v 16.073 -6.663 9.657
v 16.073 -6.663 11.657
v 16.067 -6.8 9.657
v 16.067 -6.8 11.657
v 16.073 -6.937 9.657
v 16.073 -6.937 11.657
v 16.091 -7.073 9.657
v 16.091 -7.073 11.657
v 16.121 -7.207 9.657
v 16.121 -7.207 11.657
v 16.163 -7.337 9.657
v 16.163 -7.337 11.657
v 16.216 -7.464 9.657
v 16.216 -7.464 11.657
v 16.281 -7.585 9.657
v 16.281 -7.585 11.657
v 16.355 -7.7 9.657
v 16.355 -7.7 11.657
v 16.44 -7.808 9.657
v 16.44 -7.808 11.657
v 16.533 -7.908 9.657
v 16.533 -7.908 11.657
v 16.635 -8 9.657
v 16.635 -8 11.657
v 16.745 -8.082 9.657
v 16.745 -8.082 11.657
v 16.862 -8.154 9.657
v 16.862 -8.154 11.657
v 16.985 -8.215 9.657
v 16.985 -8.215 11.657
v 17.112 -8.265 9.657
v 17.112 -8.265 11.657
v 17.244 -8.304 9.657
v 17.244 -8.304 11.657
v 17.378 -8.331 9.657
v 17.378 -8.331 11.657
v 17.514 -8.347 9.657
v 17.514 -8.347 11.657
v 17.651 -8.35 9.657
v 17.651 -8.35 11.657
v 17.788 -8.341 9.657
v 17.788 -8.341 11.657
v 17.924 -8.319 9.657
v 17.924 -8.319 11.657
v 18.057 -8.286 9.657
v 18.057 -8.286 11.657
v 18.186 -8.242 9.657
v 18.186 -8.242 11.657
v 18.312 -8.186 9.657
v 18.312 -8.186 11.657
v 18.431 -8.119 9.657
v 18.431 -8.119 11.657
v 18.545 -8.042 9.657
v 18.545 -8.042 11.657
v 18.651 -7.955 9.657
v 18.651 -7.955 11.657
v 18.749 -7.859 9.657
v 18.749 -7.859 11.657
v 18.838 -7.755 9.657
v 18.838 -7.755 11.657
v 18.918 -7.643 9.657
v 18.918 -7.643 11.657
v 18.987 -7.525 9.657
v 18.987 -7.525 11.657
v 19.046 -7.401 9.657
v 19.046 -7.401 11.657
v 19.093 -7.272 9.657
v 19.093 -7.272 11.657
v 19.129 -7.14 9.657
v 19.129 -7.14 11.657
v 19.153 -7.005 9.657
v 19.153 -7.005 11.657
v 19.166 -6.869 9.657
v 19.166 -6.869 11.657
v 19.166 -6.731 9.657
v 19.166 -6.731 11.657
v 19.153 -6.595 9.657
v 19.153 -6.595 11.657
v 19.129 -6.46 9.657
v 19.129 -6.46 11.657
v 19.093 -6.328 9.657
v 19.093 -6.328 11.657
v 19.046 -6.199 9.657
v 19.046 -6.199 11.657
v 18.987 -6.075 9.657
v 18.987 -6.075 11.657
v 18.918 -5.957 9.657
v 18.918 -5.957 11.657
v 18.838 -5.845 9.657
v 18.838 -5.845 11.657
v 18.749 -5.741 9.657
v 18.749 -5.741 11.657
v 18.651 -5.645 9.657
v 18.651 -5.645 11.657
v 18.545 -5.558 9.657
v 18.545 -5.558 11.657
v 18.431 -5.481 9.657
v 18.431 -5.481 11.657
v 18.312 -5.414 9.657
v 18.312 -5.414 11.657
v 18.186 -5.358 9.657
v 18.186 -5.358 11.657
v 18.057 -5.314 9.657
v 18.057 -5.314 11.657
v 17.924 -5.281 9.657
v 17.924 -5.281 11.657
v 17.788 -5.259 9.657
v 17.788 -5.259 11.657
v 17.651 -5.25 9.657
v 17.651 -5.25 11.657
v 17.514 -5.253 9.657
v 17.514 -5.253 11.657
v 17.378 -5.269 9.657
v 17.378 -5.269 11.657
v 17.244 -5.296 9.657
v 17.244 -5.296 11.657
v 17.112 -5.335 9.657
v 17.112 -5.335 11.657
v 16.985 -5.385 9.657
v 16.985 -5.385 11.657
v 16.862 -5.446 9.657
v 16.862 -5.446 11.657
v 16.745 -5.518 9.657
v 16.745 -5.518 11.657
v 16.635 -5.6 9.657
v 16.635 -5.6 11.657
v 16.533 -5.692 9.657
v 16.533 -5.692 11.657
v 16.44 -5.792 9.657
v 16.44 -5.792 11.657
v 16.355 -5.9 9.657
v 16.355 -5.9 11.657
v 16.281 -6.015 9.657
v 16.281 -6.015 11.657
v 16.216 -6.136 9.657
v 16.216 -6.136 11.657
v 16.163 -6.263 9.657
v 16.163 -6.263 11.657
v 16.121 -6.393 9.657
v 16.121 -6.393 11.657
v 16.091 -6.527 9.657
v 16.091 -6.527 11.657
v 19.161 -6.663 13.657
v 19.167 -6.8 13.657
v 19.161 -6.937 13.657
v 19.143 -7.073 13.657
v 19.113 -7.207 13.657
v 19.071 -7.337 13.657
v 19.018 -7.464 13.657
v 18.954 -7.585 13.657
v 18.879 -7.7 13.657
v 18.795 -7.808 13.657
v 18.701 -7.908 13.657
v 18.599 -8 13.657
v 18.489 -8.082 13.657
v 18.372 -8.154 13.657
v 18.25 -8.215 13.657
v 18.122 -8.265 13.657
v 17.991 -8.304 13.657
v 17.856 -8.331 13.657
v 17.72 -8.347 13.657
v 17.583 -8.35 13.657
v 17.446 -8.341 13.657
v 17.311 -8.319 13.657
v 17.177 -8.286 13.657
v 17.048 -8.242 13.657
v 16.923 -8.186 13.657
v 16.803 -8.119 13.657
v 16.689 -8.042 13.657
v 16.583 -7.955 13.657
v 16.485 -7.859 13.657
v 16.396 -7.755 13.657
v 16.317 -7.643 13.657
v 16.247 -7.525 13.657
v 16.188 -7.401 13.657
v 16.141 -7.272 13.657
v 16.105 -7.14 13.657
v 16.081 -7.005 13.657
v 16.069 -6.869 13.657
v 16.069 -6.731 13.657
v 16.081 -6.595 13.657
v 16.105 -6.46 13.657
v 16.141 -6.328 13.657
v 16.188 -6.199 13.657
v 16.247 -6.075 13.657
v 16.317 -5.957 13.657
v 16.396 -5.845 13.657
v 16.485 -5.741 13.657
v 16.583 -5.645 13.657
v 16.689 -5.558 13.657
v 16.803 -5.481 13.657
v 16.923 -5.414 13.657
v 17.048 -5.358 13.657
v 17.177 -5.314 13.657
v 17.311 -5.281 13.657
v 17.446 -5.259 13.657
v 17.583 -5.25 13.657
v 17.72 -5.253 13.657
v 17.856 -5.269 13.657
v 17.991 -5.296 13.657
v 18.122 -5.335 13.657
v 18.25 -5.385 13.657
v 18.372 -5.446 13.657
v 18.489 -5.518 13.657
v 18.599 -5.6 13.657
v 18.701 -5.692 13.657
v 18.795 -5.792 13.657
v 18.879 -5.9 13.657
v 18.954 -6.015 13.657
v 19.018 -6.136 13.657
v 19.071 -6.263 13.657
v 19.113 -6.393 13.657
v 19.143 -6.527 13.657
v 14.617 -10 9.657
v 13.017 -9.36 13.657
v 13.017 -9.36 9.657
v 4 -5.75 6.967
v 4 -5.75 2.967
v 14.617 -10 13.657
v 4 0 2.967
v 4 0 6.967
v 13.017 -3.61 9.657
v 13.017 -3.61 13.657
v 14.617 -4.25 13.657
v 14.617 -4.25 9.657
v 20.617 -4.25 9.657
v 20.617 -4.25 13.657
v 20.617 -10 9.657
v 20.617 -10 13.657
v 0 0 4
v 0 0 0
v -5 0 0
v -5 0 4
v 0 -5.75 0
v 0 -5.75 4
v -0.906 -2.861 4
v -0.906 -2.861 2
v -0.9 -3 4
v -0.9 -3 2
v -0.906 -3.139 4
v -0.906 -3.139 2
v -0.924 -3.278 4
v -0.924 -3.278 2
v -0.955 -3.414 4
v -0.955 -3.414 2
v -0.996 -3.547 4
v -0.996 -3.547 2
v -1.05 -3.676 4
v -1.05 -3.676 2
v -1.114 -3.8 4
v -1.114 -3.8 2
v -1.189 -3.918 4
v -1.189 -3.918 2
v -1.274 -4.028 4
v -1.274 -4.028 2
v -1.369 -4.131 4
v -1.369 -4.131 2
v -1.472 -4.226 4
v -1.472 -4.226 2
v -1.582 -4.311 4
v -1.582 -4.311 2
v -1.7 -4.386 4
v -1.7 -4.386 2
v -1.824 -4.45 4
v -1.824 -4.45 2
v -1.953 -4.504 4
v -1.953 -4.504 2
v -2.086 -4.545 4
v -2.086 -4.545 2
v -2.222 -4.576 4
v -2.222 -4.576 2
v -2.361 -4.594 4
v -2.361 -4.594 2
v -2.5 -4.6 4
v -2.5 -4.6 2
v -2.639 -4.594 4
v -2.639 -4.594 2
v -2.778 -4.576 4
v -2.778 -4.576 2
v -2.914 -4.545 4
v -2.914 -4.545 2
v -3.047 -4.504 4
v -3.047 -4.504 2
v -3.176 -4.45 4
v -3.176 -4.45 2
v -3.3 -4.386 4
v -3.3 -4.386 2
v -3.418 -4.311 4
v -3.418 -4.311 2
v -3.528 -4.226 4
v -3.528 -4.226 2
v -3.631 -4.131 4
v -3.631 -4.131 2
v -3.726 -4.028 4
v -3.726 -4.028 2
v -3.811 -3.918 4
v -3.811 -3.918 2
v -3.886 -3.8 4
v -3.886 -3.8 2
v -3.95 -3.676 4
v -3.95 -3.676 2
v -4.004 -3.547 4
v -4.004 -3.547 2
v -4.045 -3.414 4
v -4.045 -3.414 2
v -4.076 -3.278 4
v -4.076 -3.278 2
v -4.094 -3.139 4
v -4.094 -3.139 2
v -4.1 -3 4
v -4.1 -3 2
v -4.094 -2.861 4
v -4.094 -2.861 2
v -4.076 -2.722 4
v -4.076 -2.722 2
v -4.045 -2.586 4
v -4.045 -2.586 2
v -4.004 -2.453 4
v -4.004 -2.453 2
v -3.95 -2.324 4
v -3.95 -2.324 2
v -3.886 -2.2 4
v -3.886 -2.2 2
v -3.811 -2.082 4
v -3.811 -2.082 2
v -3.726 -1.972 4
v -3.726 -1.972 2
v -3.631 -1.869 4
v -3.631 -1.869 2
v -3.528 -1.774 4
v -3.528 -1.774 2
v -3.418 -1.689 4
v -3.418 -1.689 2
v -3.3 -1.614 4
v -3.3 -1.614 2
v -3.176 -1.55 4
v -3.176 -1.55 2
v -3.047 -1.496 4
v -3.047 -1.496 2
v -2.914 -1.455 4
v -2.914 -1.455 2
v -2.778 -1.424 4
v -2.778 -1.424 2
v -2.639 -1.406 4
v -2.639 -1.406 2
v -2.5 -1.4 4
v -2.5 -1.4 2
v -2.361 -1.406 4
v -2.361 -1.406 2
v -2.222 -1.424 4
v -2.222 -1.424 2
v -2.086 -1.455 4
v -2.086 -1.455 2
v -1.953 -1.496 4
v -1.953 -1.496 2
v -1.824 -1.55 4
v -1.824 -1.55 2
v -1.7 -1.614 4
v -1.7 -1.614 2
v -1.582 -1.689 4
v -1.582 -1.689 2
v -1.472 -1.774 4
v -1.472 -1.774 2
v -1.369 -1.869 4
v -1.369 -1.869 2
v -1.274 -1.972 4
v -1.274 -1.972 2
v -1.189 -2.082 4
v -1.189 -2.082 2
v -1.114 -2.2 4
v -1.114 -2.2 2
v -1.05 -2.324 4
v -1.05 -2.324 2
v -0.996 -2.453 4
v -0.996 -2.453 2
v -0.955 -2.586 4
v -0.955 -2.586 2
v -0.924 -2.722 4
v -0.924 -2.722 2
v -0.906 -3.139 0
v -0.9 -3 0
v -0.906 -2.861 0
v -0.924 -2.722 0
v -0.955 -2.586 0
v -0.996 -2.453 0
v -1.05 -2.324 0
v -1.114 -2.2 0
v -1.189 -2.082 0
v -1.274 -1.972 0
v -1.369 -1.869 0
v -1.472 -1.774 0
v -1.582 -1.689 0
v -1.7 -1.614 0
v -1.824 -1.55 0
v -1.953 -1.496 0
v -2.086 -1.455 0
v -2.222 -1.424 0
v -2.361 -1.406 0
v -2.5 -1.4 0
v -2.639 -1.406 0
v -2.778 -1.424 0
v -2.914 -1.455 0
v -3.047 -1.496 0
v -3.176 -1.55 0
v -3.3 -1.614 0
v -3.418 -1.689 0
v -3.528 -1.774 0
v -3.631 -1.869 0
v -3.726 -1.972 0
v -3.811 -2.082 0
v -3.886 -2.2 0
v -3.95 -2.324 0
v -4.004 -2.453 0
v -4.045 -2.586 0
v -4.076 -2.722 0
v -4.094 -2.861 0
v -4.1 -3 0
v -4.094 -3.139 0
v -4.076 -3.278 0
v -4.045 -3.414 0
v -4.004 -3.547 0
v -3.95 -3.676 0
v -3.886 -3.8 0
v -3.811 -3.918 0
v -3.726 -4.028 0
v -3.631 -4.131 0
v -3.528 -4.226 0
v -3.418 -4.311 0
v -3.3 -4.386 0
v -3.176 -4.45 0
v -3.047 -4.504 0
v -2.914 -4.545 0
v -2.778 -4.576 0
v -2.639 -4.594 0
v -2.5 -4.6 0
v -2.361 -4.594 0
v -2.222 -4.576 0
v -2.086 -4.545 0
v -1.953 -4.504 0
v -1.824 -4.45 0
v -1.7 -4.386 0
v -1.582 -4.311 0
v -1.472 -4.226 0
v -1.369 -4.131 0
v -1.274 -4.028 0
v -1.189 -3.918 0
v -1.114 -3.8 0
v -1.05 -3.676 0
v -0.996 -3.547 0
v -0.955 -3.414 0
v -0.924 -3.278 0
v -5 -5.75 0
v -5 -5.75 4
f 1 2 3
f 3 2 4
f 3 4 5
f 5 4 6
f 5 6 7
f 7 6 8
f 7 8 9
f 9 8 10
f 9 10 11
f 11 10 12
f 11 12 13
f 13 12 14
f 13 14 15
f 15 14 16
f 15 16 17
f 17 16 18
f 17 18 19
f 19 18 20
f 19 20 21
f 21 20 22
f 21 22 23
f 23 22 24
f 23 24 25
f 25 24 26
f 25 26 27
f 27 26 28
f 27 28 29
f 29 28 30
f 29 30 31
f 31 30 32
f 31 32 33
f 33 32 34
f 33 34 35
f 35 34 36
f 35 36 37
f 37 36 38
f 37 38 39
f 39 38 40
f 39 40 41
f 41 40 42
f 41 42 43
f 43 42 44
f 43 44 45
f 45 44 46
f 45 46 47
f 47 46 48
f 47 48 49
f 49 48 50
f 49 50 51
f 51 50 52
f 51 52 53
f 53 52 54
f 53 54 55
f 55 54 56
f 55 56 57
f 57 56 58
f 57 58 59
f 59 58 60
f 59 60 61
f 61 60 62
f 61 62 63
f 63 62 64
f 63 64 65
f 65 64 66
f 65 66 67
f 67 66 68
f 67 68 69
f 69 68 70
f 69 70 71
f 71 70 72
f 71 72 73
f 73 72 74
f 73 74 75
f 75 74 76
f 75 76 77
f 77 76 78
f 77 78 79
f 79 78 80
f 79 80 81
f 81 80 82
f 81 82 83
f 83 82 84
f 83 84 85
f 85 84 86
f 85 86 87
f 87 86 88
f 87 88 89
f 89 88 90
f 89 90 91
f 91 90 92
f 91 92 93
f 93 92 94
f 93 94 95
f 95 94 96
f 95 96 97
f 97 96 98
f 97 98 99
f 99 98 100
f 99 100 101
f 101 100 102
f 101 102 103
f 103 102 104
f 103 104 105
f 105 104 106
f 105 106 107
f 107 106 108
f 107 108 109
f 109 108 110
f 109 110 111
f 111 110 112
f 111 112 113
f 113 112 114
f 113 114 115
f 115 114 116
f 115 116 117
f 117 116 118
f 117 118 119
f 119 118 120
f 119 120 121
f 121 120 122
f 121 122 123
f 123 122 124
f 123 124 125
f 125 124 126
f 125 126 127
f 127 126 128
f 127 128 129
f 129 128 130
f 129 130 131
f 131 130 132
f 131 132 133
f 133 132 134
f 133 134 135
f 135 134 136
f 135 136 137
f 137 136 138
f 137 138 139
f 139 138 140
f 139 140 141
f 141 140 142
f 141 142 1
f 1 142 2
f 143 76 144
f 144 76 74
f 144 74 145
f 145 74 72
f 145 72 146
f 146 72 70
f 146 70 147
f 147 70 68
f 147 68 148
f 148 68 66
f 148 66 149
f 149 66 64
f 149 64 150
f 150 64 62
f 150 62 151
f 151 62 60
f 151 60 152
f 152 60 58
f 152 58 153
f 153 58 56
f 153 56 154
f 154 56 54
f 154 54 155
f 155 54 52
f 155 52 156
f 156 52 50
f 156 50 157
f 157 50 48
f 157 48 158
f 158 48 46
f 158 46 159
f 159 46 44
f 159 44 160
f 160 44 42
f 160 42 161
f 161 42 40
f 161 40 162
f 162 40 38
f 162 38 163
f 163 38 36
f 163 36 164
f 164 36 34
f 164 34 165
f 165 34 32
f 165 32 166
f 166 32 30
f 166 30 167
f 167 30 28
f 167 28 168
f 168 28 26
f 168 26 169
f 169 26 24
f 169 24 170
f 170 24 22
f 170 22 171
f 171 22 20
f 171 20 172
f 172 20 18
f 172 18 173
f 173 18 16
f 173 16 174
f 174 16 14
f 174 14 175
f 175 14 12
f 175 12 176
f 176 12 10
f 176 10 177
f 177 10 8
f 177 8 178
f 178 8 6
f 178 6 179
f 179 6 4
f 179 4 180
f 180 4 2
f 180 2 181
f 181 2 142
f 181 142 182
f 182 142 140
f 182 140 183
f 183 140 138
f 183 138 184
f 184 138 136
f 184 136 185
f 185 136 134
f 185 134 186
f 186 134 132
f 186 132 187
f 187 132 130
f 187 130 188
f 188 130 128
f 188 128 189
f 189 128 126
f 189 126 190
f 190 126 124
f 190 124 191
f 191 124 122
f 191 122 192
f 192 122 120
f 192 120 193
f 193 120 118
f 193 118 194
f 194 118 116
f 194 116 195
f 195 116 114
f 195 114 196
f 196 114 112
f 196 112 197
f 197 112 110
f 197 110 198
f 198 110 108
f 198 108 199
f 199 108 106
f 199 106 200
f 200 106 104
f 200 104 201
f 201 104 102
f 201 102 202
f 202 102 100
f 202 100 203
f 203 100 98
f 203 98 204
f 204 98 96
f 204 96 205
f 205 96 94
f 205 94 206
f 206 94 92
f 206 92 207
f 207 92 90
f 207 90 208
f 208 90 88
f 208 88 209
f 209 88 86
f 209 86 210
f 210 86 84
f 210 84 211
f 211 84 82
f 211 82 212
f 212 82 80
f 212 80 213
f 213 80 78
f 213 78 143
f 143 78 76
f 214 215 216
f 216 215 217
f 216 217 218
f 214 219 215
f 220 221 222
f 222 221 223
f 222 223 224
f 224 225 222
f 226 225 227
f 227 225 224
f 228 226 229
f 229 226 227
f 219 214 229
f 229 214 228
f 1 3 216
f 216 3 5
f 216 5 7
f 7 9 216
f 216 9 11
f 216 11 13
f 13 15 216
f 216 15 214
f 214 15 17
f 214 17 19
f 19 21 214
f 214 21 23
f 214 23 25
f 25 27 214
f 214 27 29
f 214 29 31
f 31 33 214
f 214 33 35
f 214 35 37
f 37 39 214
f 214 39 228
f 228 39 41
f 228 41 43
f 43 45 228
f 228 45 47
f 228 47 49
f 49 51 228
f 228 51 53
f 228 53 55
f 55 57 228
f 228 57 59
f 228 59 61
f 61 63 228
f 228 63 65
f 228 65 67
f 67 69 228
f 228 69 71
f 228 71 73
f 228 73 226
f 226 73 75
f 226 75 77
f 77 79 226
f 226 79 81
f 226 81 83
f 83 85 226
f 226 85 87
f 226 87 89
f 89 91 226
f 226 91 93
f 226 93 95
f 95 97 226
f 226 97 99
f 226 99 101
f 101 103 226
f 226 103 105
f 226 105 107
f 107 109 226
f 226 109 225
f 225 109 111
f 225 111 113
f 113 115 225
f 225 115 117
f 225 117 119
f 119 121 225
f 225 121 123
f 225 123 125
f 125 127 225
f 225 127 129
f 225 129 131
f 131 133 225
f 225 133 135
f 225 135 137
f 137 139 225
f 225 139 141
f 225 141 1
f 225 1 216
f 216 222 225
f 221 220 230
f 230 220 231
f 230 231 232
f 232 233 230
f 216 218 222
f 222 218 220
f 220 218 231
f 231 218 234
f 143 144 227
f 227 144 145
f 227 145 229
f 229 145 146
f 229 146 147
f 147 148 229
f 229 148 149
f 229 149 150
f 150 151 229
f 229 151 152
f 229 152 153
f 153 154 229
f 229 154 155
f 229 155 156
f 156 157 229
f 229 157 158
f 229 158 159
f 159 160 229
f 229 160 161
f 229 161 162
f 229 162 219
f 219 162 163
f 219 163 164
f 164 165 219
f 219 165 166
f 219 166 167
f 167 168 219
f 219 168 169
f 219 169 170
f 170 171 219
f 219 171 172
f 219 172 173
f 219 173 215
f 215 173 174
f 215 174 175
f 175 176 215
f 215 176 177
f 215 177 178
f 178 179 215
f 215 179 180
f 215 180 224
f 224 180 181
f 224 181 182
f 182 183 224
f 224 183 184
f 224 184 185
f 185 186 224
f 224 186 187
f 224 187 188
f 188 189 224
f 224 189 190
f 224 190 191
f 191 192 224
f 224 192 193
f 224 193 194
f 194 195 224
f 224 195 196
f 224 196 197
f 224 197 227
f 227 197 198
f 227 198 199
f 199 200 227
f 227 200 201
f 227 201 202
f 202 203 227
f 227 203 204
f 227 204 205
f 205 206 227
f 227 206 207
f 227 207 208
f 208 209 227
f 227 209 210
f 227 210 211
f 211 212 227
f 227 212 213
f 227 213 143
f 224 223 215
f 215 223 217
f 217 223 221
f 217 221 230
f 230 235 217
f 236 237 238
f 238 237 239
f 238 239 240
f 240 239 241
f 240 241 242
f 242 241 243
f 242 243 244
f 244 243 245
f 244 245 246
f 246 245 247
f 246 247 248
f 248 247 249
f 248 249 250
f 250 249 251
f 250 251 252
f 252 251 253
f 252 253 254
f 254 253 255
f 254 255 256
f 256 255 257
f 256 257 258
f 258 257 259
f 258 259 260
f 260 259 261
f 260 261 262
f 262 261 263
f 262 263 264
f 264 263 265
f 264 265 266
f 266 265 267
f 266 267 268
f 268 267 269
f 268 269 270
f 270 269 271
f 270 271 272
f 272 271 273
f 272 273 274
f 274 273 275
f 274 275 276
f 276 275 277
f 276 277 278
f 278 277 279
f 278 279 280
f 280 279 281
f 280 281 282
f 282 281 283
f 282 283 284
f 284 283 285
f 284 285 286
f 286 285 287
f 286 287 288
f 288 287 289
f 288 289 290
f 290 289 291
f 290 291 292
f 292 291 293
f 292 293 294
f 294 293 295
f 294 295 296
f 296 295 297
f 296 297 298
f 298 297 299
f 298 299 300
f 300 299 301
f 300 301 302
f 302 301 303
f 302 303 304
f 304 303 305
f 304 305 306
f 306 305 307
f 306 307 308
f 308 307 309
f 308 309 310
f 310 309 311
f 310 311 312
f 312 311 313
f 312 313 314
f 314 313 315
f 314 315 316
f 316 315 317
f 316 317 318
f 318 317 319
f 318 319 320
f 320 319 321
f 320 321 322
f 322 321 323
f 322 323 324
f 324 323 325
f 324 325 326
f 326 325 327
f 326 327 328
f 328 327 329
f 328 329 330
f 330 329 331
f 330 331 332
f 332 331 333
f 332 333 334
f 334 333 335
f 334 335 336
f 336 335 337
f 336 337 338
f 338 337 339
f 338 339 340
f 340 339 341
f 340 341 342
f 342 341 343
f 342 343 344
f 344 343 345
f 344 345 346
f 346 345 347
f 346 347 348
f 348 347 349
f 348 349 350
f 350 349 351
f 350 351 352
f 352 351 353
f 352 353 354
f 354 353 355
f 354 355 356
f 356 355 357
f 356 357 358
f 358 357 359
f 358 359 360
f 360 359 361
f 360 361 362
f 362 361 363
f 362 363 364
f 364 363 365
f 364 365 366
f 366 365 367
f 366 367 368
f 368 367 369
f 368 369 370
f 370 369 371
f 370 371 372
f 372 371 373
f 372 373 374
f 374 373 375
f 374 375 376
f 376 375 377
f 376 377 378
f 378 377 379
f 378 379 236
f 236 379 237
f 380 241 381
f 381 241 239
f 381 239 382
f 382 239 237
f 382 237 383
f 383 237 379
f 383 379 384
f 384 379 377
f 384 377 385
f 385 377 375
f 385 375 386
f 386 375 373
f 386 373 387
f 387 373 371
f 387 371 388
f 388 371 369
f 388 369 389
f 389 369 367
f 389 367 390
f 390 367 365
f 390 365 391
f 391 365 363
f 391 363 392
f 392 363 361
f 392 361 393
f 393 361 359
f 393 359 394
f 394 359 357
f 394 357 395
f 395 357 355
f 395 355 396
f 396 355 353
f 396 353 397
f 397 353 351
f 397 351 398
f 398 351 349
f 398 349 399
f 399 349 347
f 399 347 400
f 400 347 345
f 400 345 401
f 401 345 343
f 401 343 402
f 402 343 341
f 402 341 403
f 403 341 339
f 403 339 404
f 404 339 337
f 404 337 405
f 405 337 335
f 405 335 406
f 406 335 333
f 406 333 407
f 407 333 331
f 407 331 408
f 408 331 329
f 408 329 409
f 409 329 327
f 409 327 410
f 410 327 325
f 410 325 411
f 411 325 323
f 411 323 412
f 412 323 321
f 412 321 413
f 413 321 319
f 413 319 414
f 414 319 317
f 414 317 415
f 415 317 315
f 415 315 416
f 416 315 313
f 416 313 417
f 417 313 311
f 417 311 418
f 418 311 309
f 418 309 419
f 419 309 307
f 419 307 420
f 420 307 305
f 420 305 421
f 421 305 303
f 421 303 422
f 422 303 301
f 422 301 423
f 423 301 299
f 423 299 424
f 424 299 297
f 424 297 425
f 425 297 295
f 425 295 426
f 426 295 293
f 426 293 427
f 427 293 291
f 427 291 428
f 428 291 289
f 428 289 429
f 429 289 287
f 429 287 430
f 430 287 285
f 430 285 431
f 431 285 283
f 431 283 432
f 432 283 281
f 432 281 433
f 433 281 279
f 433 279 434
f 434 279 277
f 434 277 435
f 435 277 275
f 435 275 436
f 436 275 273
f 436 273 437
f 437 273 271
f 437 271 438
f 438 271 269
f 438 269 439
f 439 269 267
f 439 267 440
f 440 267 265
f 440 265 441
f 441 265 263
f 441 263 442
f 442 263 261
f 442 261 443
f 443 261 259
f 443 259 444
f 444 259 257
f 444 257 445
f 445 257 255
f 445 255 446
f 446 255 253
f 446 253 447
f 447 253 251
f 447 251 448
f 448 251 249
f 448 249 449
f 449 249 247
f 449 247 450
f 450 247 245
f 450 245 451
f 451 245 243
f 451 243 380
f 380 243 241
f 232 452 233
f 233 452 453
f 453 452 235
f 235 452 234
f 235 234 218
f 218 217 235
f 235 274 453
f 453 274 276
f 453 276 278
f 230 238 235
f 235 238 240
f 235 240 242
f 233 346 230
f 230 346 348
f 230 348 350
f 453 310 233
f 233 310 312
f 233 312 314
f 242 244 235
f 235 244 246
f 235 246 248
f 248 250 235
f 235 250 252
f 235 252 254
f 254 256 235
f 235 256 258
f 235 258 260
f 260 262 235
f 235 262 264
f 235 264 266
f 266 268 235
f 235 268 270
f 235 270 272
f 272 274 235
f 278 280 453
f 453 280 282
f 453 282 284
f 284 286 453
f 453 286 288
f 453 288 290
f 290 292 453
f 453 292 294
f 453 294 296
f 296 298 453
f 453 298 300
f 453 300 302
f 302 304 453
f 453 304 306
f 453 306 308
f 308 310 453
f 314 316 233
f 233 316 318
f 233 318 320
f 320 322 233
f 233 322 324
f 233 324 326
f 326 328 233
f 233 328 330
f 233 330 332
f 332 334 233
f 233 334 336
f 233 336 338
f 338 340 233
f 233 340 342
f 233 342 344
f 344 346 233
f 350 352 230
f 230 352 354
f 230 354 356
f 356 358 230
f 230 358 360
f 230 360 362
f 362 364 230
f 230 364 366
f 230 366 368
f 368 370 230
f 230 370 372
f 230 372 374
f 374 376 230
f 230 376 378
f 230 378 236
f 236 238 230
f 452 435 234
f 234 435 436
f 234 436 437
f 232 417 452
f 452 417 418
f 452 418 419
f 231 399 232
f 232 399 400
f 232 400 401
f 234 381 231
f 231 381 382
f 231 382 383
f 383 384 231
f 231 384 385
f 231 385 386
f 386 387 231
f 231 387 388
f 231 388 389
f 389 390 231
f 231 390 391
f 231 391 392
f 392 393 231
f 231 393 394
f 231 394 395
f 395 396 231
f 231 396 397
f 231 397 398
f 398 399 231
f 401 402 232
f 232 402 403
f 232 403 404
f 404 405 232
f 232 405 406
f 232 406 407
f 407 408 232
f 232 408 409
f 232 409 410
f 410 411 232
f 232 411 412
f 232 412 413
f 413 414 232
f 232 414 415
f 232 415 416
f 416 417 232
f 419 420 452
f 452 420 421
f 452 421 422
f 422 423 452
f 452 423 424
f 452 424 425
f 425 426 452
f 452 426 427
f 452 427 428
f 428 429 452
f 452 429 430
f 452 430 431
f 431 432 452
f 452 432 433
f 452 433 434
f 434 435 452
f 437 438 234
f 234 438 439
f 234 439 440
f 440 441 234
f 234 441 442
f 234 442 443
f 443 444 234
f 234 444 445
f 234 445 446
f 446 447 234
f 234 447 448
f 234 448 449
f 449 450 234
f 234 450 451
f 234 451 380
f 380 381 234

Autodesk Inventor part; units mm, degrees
ref_plane "YZ Plane" through (0, 0, 0) normal (1, 0, 0) x (0, 1, 0)
ref_plane "XZ Plane" through (0, 0, 0) normal (0, 1, 0) x (-1, 0, 0)
ref_plane "XY Plane" through (0, 0, 0) normal (0, 0, 1) x (1, 0, 0)
sketch "Sketch1" plane through (0, 0, 0) normal (0, 0, 1) x (1, 0, 0)
  circle A0 centre (-2.5, -3) radius 1.6 projected
  line L0 (-10, -5.75) -> (0, -5.75) projected
  line L1 (0, 0) -> (0, -5.75) projected
  line L2 (-10, 0) -> (0, 0) projected
  line L3 (-10, -1.75) -> (-10, 0) projected
  line L4 (-10, -5.75) -> (-10, -4.05) projected
  line L5 (0, -5.75) -> (-5, -5.75)
  line L6 (-5, -5.75) -> (-5, 0)
  line L7 (-5, 0) -> (0, 0)
  line L8 (0, 0) -> (0, -5.75)
  line L9 (-10, -1.75) -> (-9.2455, -1.75) projected
  line L10 (-9.2455, -1.75) -> (-9.2455, -4.05) projected
  line L11 (-9.2455, -4.05) -> (-10, -4.05) projected
  dimension "d0" = 2.5
extrude "Extrusion1" add sketch "Sketch1" along normal blind 4 contours L6 L2 L1 L0
sketch "Sketch2" plane through (-5, 0, 0) normal (0, 1, 0) x (1, 0, 0)
  line L0 (5, 0) -> (0, 0) projected
  line L1 (0, 0) -> (0, -4) projected
  line L2 (5, -4) -> (0, -4) projected
  line L3 (5, 0) -> (5, -4) projected
  line L4 (24.0211, -5.907) -> (18.6171, -5.907) projected
  line L5 (24.0211, -17.407) -> (18.6171, -17.407) projected
  line L6 (5, -4) -> (18.0171, -13.657)
  line L7 (5, 0) -> (18.0171, -9.657)
  line L8 (18.6171, -17.407) -> (18.6171, -13.657) construction
  line L9 (18.6171, -5.907) -> (18.6171, -9.657) construction
  line L10 (18.6171, -9.657) -> (18.6171, -13.657) construction
  line L11 (24.0211, -5.907) -> (24.0211, -17.407) construction
  line L12 (18.0171, -9.657) -> (26.5171, -9.657)
  line L13 (18.0171, -13.657) -> (26.5171, -13.657)
  line L14 (26.5171, -13.657) -> (26.5171, -9.657)
  line L15 (20.0171, -11.057) -> (20.0171, -5.657) construction
  point P0 (24.0211, -11.657)
  point P1 (18.6171, -11.657)
  dimension "d3" = 4
  dimension "d4" = 8.5
  dimension "d7" = 2
extrude "Extrusion2" add sketch "Sketch2" against normal blind 10 contours L7 L12 L14 L13 L6 L3
sketch "Sketch3" plane through (13.0171, 0, 13.657) normal (0, 0, 1) x (1, 0, 0)
  circle A0 centre (4.6, -6.8) radius 1.55 construction
  line L0 (-13.0171, 0) -> (0, 0) construction
  line L1 (-13.0171, -5.75) -> (-13.0171, 0) projected
  line L2 (-13.0171, -5.75) -> (-13.0171, -10) projected
  line L3 (0, -10) -> (-13.0171, -10) projected
  line L4 (0, 0) -> (0, -10) construction
  line L5 (0, 0) -> (8.5, 0) projected
  line L6 (0, 0) -> (0, -10) construction
  line L7 (8.5, -10) -> (0, -10) construction
  line L8 (8.5, 0) -> (8.5, -10) projected
  line L9 (-18.0171, -5.75) -> (-13.0171, -5.75) projected
  line L10 (-13.0171, -5.75) -> (-9.0171, -5.75)
  line L11 (-9.0171, -5.75) -> (1.6, -10)
  line L12 (8.5, -10) -> (0, -10) projected
  line L13 (-13.0171, 0) -> (-18.0171, 0) projected
  line L14 (-13.0171, 0) -> (-9.0171, 0)
  line L15 (0, 0) -> (-13.0171, 0) projected
  line L16 (-9.0171, 0) -> (1.6, -4.25)
  line L17 (1.6, -4.25) -> (7.6, -4.25)
  line L18 (7.6, -4.25) -> (7.6, -10)
  line L19 (2.7105, -10) -> (7.6, -10)
  dimension "d8" = 4
  dimension "d9" = 4
  dimension "d11" = 3
  dimension "d12" = 3
extrude "Extrusion3" cut sketch "Sketch3" against normal through all contours L10 L11 L12 L3 L2 | L15 L5 L8 L12 L18 L17 L16
sketch "Sketch4" plane through (14.6171, -10, 13.657) normal (0, 0, 1) x (1, 0, 0)
  line L0 (-1.6, 0.6405) -> (0, 0) projected
  line L1 (6, 0) -> (0, 0) projected
  line L2 (6, 0) -> (6, 5.75) projected
  line L3 (6, 5.75) -> (0, 5.75) projected
  line L4 (0, 5.75) -> (-1.6, 6.3905) projected
  line L5 (-1.6, 6.3905) -> (-1.6, 0.6405) projected
  circle A0 centre (3, 3.2) radius 1.55 projected
  point P0 (-14.6171, 10)
extrude "Extrusion4" cut sketch "Sketch4" against normal through all contours A0
properties part number "Palanca servo_dedo_2"
